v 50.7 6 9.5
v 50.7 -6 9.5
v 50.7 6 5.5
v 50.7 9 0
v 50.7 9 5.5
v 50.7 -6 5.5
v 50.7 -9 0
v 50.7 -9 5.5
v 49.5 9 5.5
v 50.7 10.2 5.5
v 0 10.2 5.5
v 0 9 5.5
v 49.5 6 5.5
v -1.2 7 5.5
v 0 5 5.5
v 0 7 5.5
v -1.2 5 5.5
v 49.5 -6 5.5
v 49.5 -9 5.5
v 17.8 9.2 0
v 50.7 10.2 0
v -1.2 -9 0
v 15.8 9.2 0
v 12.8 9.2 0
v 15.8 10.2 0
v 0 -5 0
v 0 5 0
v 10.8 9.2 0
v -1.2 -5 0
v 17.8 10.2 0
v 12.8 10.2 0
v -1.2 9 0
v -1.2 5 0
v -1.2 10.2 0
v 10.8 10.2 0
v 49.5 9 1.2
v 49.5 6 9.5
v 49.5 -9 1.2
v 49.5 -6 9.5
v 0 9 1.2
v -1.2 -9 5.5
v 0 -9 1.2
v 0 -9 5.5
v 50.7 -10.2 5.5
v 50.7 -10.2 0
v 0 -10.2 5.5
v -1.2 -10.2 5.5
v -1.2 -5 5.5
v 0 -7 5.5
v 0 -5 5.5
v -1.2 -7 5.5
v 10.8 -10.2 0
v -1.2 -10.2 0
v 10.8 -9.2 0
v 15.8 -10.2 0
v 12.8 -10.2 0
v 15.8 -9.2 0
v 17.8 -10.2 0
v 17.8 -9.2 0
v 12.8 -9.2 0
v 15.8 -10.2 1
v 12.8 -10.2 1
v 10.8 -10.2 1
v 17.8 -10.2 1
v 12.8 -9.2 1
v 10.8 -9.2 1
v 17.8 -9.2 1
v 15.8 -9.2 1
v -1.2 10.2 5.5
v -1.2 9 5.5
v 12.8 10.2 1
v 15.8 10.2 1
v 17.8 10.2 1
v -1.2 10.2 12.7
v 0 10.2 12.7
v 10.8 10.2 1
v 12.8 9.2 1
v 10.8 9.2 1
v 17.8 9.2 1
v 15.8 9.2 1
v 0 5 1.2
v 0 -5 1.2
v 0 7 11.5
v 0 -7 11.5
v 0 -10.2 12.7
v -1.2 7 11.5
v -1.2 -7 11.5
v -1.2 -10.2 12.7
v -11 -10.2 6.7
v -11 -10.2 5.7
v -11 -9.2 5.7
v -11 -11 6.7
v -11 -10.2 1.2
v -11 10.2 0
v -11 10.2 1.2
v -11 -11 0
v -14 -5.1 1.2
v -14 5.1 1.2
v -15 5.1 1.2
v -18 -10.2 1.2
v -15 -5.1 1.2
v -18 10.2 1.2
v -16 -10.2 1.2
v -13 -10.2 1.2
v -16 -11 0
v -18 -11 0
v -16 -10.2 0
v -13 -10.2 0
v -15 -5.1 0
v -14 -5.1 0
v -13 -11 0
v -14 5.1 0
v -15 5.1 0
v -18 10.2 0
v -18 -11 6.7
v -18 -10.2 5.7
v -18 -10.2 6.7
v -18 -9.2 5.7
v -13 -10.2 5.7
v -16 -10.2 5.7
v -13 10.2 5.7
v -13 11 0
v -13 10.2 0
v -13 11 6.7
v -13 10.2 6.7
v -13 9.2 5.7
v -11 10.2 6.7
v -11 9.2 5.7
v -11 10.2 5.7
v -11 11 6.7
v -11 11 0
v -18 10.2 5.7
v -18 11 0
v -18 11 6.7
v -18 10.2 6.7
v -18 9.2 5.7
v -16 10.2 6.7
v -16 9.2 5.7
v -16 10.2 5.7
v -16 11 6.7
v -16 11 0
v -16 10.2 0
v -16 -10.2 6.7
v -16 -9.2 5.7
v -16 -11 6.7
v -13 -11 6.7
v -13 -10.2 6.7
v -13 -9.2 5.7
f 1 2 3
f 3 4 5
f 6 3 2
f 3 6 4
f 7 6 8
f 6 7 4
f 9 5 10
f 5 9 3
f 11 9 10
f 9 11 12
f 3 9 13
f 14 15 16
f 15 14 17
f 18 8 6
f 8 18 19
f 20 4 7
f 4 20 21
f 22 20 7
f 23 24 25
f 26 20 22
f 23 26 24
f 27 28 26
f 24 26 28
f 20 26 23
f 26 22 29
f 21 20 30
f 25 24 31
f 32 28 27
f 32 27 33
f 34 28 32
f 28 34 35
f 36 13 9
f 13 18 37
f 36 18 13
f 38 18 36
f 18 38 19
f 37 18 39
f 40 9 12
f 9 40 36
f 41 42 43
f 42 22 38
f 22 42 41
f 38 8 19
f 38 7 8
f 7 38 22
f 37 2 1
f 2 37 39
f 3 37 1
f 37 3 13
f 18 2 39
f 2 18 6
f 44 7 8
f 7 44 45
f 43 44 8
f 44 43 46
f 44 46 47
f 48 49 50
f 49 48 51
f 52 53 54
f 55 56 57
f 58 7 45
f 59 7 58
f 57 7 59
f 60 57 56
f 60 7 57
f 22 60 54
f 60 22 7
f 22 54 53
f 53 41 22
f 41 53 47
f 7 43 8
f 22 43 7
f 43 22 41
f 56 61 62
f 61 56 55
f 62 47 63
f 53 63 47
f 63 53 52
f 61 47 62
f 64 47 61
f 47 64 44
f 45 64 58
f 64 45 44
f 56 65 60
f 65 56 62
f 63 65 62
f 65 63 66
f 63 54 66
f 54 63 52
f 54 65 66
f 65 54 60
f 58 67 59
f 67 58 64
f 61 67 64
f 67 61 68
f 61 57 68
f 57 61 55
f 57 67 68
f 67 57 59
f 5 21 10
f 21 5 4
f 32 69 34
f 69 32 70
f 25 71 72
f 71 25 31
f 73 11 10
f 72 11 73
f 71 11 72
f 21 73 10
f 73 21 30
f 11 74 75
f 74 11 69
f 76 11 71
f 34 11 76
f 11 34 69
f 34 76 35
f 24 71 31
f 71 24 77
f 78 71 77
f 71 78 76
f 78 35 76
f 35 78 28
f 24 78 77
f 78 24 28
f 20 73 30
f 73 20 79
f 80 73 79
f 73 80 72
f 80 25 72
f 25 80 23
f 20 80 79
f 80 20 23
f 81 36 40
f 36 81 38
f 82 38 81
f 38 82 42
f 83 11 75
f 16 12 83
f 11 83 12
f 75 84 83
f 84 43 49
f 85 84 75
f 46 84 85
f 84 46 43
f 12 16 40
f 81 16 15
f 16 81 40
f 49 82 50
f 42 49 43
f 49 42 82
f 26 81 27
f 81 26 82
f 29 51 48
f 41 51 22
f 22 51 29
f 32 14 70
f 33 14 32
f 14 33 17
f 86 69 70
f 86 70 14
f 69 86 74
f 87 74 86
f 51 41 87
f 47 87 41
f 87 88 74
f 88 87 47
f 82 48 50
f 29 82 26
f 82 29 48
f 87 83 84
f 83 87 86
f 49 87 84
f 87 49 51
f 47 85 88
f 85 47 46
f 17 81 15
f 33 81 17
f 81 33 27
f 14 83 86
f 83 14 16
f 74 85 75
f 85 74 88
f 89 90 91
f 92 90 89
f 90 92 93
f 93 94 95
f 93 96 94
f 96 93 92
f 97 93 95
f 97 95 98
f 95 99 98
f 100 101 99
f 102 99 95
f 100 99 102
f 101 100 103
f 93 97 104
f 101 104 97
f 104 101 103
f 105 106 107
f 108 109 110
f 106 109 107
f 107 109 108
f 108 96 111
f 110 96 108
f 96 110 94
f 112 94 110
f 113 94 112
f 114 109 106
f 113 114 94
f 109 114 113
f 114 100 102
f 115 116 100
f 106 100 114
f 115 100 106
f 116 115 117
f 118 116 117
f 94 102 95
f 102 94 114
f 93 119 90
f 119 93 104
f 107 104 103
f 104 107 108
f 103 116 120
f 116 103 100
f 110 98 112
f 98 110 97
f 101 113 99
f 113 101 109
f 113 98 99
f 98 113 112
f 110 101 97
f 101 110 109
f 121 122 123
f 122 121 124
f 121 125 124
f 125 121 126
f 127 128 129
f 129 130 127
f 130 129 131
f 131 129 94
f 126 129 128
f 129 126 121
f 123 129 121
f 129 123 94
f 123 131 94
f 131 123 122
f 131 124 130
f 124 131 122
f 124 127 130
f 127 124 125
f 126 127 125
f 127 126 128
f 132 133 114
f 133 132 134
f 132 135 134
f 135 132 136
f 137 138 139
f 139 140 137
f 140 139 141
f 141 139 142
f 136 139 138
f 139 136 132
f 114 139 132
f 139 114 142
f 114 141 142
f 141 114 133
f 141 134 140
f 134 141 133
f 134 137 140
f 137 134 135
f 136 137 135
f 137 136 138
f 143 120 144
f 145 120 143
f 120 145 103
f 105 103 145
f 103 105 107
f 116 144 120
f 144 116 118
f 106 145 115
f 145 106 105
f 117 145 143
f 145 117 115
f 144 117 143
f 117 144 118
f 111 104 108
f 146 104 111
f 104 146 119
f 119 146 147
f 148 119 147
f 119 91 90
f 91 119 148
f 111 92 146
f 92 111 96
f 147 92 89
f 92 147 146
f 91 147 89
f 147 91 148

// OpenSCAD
// Length of PCB
L_PCB = 49.5;

// Width of PCB
B_PCB = 18;

// Height of PCB + Components on the Bottom Side
H_PCB_COMP = 5.5;

// Depth
D = 1.2;

L_BRIDGE = 7;

H_CLIP = H_PCB_COMP+D;
L_CLIP = 2;

translate([0,-B_PCB/2,0]) {	
	cube([L_PCB, B_PCB, D]);
	
	// Front with holes for USB
	translate([-D,0,0])
		cube([D, 4, H_PCB_COMP]);
	translate([-D,-D,H_PCB_COMP])
		cube([D, 2+D, 6]);
	
	translate([-D,B_PCB-4,0])
		cube([D, 4, H_PCB_COMP]);
	translate([-D,B_PCB-2,H_PCB_COMP])
		cube([D, 2+D, 6]);
	
	translate([-D,-D,H_PCB_COMP+6])
		cube([D, B_PCB+2*D, D]);
	
	// Back
	translate([L_PCB,0,0]){
		cube([D, B_PCB, H_PCB_COMP]);
		translate([0, 3, H_PCB_COMP])
			cube([D, B_PCB-6, 4]);
	}
	// Sides
	translate([-D,-D,0])
		difference() {
			cube([L_PCB+2*D, D, H_PCB_COMP]);
			translate([12,-1,-1])
				cube([L_CLIP, 2, 2]);
			translate([12+L_BRIDGE-L_CLIP,-1,-1])
				cube([L_CLIP, 2, 2]);

		}


	translate([-D, B_PCB, 0])
		difference() {
			cube([L_PCB+2*D, D, H_PCB_COMP]);
			translate([12,-1+D,-1])
				cube([L_CLIP, 2, 2]);
			translate([12+L_BRIDGE-L_CLIP,-1+D,-1])
				cube([L_CLIP, 2, 2]);

		}

}

module clip(l,w,d) {
	translate([w,0,0])
	rotate([-90,0,90])
	linear_extrude(height=w)
	polygon([[0,0], [0,-(l-1)], [1,-(l-1)], [0,-l], [-d, -l], [-d,0]]);
}

translate([-B_PCB,-(B_PCB+2*D)/2,0]) {
	
	difference() {
		cube([L_BRIDGE,B_PCB+2*D,D]);
		translate([(L_BRIDGE-1)/2, (B_PCB+2*D)/4, -D])
			cube([1, (B_PCB+2*D)/2, 3*D]);
	}
		
	clip(H_CLIP,2,0.8);
	translate([L_BRIDGE-2,0,0])
		clip(H_CLIP,2,0.8);
	
	translate([L_BRIDGE,B_PCB+2*D,0]){
		rotate([0,0,180]){
			clip(H_CLIP,2,0.8);
			translate([L_BRIDGE-2,0,0])
				clip(H_CLIP,2,0.8);
		}
	}

	
}
